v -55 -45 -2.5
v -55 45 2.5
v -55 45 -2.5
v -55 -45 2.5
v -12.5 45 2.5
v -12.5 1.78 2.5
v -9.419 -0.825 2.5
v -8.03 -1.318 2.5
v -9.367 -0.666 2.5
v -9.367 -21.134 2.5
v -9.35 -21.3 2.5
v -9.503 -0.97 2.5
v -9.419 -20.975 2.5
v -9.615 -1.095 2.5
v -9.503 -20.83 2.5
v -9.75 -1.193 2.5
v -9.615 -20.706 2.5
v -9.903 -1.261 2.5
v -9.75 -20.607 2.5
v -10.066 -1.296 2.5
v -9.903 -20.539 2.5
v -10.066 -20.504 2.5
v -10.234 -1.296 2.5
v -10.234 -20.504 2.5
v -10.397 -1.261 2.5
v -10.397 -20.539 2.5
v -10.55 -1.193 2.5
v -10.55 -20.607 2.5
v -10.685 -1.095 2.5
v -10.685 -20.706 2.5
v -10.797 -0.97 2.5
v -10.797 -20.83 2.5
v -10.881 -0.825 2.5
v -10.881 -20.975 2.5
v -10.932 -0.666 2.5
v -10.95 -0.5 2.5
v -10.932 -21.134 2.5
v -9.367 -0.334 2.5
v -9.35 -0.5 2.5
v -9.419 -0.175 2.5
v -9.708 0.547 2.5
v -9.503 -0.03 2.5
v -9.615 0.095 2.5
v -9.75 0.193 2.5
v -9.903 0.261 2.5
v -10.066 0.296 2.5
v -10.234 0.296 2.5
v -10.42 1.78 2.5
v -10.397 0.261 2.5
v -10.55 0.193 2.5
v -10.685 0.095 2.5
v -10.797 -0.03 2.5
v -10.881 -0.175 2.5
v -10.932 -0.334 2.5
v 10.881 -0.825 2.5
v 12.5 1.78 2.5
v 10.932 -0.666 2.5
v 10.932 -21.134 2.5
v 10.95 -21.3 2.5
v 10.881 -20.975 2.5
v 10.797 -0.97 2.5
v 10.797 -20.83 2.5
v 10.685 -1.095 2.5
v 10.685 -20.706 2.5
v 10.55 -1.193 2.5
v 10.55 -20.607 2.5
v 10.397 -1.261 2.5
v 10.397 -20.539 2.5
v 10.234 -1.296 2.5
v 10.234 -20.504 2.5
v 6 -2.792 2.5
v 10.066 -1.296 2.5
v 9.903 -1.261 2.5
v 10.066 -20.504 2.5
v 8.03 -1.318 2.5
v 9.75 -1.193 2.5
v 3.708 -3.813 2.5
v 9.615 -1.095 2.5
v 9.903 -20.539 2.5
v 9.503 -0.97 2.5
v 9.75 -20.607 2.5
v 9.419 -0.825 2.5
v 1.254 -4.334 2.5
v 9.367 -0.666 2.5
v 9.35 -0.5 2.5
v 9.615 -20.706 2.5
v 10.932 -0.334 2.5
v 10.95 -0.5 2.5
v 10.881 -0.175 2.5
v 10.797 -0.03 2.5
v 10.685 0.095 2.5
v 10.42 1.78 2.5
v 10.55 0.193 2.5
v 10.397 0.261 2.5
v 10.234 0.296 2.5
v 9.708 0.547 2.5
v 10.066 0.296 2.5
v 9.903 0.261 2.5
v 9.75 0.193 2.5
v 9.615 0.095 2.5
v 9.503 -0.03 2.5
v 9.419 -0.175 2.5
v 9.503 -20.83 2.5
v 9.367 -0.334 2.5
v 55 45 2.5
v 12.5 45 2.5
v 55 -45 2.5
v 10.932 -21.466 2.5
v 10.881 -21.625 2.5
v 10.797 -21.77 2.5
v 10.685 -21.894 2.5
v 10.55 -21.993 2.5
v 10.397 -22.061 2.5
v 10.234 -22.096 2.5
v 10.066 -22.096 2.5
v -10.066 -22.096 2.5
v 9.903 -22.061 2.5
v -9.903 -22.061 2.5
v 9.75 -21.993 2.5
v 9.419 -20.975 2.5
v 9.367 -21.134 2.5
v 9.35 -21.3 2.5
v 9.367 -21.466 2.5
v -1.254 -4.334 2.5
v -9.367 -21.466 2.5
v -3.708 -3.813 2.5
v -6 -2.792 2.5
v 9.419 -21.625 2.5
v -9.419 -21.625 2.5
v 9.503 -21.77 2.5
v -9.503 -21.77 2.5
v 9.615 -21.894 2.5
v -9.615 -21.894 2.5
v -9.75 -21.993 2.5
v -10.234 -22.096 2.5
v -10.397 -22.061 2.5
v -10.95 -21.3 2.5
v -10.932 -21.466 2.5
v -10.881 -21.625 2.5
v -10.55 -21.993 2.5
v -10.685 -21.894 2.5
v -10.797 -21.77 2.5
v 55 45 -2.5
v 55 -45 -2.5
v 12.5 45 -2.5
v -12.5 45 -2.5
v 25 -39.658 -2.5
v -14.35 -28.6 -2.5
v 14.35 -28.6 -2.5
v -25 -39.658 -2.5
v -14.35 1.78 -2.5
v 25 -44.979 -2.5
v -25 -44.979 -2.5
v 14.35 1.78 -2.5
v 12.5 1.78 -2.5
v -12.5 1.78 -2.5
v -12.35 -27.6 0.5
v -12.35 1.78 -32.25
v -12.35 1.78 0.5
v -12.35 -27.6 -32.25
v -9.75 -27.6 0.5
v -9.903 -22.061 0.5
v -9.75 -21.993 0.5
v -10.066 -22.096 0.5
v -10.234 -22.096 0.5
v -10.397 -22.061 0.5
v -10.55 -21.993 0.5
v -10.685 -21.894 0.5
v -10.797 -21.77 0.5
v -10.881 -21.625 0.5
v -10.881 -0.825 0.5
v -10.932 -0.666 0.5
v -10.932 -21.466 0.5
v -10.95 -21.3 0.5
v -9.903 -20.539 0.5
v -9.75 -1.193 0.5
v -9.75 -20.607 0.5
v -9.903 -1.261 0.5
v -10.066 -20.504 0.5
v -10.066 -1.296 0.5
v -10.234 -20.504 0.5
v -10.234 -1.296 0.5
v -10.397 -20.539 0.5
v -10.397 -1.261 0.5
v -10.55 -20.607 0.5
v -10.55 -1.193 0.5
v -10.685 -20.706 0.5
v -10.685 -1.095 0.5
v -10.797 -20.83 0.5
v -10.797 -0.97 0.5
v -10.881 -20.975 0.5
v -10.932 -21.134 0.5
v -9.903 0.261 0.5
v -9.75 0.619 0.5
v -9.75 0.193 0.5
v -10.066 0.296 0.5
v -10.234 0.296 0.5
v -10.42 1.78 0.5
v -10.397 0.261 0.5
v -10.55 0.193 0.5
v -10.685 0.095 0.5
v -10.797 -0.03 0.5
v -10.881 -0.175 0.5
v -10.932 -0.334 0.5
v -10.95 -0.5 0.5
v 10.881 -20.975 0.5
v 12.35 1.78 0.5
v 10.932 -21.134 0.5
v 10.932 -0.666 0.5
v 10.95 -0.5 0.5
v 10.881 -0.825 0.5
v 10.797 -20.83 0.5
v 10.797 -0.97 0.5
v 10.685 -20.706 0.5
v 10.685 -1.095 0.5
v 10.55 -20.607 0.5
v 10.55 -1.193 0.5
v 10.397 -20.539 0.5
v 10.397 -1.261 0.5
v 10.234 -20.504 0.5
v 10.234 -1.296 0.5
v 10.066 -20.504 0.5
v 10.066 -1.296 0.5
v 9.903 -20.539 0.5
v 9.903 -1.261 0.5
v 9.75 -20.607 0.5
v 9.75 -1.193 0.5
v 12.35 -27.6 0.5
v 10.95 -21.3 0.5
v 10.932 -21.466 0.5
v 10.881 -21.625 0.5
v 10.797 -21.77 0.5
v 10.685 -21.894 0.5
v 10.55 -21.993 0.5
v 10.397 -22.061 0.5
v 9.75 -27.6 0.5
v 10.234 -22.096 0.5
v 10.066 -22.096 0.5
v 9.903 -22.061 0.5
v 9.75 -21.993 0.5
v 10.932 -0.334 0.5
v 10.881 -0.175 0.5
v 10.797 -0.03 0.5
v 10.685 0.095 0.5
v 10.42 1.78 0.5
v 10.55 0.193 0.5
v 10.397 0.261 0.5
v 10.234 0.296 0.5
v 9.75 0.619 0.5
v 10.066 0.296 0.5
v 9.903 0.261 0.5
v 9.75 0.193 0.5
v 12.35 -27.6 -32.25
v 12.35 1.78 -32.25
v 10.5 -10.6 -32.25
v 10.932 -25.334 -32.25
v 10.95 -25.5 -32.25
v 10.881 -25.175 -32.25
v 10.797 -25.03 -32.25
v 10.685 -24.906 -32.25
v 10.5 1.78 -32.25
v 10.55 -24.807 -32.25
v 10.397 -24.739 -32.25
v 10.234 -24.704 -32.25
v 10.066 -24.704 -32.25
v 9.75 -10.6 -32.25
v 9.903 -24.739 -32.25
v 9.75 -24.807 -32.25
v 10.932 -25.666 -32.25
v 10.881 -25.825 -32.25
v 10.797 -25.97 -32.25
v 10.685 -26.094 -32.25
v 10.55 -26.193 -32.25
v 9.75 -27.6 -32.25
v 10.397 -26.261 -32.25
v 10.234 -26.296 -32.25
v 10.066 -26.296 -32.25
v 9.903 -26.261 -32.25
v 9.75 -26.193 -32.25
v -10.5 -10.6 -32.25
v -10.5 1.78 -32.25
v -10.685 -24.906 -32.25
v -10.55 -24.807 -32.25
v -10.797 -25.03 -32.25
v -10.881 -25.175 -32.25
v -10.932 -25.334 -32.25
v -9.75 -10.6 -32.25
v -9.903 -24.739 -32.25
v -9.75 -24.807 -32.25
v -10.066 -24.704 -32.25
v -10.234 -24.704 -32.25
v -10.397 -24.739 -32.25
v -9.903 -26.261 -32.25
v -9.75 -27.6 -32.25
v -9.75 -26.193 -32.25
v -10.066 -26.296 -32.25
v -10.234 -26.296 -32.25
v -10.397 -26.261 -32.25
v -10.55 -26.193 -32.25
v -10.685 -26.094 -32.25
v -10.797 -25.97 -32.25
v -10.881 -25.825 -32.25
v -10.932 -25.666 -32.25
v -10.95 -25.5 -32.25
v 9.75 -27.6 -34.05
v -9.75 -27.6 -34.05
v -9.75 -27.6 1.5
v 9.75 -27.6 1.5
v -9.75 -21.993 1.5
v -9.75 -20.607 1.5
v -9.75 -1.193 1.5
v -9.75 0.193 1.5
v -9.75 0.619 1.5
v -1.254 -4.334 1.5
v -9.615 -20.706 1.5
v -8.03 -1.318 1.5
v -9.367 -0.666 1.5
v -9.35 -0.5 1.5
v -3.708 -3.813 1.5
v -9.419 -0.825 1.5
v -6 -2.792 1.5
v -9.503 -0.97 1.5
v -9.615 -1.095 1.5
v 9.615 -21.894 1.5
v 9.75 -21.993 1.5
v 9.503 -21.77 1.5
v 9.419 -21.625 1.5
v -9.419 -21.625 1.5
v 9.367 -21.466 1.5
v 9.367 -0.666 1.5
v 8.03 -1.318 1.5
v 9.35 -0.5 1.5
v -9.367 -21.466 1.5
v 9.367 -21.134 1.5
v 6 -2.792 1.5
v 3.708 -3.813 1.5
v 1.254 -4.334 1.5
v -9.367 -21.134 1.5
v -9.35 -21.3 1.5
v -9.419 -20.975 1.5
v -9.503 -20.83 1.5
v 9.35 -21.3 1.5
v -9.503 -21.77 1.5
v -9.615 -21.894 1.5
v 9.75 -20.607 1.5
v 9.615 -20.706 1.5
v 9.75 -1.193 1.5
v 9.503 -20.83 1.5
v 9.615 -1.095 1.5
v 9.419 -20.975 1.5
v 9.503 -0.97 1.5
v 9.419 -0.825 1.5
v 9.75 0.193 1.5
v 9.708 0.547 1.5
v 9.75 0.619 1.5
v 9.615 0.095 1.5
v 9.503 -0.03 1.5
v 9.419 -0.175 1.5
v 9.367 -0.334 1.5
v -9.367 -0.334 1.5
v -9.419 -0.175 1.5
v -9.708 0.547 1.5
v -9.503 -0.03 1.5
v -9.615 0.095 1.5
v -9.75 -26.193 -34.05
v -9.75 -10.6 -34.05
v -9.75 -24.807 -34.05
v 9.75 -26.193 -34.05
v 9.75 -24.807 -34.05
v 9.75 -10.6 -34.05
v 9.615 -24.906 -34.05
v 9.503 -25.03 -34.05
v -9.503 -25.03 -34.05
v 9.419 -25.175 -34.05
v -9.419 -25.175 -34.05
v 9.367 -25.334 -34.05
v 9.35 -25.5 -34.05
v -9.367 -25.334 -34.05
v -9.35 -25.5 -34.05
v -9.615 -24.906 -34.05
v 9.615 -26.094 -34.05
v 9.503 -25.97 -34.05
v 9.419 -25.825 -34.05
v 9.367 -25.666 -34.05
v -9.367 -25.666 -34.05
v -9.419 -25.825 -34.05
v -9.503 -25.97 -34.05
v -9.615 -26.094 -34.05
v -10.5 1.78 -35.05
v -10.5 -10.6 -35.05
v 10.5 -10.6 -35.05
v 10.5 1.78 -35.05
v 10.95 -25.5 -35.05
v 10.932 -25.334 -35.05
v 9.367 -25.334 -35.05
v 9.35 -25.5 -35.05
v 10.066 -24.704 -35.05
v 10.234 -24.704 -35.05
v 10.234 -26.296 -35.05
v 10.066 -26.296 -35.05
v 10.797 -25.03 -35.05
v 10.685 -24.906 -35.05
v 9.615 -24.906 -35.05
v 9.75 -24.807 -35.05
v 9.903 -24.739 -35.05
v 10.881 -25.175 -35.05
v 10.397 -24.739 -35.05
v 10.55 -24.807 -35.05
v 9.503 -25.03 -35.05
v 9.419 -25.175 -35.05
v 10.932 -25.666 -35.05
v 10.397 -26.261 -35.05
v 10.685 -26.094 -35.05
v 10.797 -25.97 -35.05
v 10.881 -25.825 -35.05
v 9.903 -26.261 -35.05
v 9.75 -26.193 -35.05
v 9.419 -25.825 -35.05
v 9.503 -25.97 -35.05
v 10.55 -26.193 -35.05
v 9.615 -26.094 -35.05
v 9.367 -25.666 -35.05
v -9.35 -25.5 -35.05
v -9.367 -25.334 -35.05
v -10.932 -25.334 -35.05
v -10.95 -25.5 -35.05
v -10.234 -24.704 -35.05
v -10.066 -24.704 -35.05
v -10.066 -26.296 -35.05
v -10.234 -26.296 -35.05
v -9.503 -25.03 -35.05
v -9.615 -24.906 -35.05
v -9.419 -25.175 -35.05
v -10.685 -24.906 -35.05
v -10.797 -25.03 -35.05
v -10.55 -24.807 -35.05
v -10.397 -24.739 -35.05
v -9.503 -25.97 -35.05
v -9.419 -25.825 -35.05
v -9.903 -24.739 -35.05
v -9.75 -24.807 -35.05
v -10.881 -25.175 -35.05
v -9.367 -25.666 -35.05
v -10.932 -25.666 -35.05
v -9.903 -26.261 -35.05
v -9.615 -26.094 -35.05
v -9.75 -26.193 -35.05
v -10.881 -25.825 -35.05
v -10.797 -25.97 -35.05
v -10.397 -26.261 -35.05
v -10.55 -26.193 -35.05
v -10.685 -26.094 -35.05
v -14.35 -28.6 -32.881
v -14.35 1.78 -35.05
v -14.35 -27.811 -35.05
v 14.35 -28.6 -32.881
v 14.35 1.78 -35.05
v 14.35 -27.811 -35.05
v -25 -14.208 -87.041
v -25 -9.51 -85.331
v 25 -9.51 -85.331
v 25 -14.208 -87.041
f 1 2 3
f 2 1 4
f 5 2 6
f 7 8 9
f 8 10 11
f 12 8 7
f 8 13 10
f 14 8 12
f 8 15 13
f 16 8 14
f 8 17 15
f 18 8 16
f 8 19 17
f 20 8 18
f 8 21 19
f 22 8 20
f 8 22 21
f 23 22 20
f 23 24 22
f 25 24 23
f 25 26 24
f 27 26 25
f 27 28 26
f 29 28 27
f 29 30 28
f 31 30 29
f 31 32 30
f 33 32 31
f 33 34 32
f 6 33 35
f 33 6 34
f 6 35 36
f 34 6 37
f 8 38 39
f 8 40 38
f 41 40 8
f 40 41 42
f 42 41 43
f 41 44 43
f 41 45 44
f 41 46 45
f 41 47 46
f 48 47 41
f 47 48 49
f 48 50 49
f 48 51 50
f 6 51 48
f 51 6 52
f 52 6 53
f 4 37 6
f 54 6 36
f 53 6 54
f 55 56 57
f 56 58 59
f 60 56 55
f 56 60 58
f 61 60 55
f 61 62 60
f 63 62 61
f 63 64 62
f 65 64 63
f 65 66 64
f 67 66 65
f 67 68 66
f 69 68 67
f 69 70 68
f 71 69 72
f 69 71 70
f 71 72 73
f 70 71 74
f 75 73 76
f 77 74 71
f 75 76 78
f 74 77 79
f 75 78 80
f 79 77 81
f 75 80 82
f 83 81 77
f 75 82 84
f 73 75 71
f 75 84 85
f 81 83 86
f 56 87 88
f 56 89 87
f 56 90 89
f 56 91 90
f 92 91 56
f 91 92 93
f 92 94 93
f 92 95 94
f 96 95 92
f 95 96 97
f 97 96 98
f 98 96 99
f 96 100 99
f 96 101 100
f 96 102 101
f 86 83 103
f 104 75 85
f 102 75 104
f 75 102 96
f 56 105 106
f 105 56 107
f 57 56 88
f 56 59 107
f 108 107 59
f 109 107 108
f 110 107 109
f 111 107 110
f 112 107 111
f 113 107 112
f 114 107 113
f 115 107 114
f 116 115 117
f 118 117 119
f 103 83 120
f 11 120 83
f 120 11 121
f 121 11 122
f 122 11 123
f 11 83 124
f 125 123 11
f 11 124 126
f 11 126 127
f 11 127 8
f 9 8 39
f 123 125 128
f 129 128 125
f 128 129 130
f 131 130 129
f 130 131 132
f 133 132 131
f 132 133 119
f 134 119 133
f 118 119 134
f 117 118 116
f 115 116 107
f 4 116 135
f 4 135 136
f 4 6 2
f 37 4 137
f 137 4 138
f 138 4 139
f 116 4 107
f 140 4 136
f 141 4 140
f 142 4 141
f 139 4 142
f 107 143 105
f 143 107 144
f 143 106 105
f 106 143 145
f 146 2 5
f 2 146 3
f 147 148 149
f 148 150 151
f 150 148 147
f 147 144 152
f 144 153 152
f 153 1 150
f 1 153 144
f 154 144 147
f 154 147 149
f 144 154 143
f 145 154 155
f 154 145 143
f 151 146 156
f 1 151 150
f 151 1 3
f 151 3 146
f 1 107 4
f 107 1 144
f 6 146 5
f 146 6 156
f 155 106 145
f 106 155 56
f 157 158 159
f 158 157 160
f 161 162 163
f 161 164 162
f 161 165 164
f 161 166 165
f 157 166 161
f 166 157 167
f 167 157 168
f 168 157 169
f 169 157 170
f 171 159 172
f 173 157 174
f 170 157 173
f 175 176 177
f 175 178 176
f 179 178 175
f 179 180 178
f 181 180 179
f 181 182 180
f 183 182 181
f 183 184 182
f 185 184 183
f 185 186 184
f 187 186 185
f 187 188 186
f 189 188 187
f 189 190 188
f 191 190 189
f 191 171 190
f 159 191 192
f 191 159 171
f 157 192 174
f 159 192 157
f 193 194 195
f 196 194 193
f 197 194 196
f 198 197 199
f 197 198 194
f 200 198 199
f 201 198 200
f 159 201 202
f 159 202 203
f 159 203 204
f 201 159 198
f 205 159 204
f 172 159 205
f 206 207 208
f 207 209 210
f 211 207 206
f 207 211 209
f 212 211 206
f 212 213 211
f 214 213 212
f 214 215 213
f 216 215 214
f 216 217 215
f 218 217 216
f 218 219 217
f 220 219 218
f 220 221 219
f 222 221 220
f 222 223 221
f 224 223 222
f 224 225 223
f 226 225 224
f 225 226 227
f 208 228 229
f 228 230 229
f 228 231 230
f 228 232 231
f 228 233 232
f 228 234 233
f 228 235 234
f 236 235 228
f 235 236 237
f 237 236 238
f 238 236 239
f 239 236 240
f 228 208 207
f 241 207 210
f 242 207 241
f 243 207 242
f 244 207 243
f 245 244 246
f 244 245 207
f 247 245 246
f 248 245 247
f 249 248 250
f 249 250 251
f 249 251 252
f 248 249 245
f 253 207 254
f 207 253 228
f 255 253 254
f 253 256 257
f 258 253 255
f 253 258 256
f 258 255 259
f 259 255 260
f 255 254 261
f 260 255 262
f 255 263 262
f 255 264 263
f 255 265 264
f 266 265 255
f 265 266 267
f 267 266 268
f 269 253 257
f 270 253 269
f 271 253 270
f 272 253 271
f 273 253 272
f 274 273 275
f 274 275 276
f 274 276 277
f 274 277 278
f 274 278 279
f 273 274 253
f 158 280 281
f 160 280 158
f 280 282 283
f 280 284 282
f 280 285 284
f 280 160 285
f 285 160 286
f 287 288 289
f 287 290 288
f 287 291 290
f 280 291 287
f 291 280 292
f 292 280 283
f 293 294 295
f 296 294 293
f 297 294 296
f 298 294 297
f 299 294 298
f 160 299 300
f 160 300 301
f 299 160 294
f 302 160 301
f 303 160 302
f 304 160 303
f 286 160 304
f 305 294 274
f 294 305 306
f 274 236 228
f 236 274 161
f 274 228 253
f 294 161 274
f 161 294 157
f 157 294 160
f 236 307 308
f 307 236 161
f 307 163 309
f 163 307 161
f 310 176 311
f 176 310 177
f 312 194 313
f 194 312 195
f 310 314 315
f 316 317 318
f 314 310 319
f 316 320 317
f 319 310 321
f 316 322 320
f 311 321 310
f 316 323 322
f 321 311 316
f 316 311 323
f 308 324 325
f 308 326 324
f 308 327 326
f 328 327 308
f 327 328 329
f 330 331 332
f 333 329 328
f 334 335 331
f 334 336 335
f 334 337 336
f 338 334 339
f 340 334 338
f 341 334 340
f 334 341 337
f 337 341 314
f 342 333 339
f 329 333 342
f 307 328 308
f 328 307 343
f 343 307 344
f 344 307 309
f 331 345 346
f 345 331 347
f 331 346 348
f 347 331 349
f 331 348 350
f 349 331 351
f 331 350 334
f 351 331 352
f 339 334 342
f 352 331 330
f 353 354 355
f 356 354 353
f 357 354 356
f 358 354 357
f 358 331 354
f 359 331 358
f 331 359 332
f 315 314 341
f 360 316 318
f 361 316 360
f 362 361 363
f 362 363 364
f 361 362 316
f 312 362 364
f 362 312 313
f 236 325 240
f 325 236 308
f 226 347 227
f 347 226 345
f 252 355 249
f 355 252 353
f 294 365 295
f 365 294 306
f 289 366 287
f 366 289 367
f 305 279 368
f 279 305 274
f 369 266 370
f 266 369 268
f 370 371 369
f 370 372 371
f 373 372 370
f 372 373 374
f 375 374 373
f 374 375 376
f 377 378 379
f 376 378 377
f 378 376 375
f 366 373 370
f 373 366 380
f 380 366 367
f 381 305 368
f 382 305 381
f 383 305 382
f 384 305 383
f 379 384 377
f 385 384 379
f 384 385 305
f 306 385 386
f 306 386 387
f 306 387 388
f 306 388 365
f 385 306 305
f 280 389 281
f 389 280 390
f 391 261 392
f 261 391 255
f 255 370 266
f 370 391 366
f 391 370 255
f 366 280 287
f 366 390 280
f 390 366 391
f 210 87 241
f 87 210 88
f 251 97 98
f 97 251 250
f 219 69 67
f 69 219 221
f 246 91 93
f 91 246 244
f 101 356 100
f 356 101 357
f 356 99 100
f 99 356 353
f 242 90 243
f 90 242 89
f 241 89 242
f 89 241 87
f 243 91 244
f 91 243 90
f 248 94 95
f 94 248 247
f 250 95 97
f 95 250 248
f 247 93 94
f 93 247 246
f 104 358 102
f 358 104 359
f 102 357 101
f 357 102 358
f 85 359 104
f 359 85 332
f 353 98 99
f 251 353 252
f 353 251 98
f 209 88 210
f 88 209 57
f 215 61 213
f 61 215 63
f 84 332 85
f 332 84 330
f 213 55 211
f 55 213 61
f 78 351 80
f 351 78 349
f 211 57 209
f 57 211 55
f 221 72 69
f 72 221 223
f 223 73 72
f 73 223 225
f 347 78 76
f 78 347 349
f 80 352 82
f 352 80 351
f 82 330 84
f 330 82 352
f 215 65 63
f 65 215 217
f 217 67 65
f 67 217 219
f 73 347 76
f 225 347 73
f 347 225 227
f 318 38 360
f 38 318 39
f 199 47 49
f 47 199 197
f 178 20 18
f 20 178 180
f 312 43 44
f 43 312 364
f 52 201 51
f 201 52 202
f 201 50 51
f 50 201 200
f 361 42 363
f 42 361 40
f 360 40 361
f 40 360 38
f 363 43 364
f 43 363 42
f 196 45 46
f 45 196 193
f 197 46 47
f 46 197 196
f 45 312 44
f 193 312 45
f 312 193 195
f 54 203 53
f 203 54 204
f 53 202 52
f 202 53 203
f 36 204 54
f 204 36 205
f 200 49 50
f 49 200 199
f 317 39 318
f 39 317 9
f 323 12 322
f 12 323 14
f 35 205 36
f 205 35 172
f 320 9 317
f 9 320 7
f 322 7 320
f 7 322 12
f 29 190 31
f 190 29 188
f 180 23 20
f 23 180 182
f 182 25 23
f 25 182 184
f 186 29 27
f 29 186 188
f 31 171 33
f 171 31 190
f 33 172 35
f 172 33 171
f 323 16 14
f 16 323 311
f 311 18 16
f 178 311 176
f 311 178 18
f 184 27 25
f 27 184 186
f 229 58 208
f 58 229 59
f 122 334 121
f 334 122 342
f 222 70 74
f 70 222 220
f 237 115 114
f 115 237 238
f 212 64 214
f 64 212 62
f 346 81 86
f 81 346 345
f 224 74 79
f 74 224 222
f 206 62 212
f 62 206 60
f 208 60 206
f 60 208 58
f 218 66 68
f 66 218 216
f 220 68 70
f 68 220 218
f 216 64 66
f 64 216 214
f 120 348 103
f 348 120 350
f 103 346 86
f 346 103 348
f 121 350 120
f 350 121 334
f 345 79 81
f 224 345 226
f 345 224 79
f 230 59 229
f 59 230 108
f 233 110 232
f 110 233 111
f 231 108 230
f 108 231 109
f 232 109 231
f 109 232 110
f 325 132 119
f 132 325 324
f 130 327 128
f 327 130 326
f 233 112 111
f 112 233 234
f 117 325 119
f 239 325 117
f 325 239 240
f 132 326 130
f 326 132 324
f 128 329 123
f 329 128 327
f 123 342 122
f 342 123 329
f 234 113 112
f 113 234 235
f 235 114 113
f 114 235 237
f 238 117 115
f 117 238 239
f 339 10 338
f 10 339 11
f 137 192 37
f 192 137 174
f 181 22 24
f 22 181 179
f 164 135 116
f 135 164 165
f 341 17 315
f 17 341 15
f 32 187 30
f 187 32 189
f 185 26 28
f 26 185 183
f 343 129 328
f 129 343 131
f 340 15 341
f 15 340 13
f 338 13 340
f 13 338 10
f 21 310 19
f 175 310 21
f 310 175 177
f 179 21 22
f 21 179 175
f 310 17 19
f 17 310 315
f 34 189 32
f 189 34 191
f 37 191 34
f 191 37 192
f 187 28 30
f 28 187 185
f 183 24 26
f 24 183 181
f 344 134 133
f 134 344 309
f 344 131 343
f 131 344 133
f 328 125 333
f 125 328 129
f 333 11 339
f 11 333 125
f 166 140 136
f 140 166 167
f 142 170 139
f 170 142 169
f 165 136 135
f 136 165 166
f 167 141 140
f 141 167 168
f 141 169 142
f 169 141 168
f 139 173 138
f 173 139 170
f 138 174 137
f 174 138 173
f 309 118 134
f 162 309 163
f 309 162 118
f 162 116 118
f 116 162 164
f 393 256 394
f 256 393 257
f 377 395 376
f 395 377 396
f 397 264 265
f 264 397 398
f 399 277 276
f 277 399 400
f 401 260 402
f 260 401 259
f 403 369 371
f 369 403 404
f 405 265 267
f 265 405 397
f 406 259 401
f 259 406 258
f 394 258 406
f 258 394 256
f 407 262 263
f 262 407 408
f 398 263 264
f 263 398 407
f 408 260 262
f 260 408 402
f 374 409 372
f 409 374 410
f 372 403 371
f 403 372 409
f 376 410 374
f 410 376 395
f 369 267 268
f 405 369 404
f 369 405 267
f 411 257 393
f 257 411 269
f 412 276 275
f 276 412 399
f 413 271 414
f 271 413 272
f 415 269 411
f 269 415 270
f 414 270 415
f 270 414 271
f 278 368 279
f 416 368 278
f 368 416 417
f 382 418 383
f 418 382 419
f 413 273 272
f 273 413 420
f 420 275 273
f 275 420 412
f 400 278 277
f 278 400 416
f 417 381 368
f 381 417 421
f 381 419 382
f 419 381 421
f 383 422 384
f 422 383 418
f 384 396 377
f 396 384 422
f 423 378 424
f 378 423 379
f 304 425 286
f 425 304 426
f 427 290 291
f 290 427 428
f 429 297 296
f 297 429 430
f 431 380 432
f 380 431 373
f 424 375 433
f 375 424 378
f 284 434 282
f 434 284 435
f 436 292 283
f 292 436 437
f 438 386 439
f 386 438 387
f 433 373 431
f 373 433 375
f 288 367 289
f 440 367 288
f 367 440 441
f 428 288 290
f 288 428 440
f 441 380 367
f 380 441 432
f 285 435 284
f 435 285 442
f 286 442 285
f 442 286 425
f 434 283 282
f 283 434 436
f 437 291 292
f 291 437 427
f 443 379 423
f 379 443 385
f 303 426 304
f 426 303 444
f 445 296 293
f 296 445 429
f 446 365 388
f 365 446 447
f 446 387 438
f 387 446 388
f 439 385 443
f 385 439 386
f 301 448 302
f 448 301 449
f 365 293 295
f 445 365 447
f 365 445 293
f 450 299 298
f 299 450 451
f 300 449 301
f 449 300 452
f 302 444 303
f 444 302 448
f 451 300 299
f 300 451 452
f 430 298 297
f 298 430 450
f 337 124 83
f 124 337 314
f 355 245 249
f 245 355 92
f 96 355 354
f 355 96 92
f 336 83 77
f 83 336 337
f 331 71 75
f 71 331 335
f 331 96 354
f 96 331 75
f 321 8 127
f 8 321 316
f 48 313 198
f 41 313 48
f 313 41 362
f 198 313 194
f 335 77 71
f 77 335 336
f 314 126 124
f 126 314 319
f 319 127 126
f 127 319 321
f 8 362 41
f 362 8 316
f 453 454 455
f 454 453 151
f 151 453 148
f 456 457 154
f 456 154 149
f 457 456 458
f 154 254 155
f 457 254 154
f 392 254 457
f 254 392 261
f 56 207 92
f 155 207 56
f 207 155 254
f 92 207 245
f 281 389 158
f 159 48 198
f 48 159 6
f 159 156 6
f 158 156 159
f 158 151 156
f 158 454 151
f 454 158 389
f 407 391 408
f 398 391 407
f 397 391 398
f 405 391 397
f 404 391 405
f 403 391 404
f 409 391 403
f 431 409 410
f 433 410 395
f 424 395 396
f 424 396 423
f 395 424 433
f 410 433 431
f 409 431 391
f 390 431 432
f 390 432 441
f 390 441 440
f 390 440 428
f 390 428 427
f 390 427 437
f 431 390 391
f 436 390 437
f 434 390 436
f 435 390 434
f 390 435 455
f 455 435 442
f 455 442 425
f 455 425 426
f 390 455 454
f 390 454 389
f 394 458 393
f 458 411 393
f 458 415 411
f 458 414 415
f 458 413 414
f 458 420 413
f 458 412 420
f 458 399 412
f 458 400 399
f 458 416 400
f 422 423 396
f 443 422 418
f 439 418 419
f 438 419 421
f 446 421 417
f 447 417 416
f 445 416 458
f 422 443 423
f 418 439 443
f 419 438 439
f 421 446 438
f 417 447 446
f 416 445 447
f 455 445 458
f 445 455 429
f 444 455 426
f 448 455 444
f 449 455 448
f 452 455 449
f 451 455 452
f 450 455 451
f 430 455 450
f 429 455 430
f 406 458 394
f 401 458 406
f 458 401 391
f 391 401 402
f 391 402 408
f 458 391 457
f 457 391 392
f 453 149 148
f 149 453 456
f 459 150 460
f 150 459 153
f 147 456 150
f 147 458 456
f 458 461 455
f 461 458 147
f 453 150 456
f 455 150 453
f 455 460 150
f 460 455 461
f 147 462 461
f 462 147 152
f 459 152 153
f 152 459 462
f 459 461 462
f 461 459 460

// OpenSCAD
/*


 ########################################
 # Animatronic Workbench State Selector #
 ########################################

 Licensed under MIT License (MIT)

 Copyright (c) 2023 Daniel Springwald | daniel@springwald.de

 Permission is hereby granted, free of charge, to any person obtaining
 a copy of this software and associated documentation files (the
 "Software"), to deal in the Software without restriction, including
 without limitation the rights to use, copy, modify, merge, publish,
 distribute, sublicense, and/or sell copies of the Software, and to permit
 persons to whom the Software is furnished to do so, subject to
 the following conditions:

 The above copyright notice and this permission notice shall be
 included in all copies or substantial portions of the Software.

 THE SOFTWARE IS PROVIDED "AS IS", WITHOUT WARRANTY OF ANY KIND, EXPRESS
 OR IMPLIED, INCLUDING BUT NOT LIMITED TO THE WARRANTIES OF MERCHANTABILITY,
 FITNESS FOR A PARTICULAR PURPOSE AND NONINFRINGEMENT. IN NO EVENT SHALL
 THE AUTHORS OR COPYRIGHT HOLDERS BE LIABLE FOR ANY CLAIM, DAMAGES OR OTHER
 LIABILITY, WHETHER IN AN ACTION OF CONTRACT, TORT OR OTHERWISE, ARISING
 FROM, OUT OF OR IN CONNECTION WITH THE SOFTWARE OR THE USE OR OTHER
 DEALINGS IN THE SOFTWARE.

*/

$exportQuality = true;

function resolutionLow() = ($exportQuality==true) ? 20 : 10;
function resolutionHi() = ($exportQuality==true) ? 300 : 50;

include <LX-16A-Servo.scad>

module StateSelectorFront() {
    
    // Panel holder
    difference() {
        cube([110,90,5], center=true);
        translate([0,34,0])
            cube([25,125,10], center=true);
    }
    
    // Servo holder
    translate([0,-5,-15.875])
        LX16ACubeHolder(); 
    
   
    // Foot
    translate([0,-27.25,-43.9])
        rotate([-70,0,0]){
            cube([50,90,5], center=true);
        }
}


StateSelectorFront();
